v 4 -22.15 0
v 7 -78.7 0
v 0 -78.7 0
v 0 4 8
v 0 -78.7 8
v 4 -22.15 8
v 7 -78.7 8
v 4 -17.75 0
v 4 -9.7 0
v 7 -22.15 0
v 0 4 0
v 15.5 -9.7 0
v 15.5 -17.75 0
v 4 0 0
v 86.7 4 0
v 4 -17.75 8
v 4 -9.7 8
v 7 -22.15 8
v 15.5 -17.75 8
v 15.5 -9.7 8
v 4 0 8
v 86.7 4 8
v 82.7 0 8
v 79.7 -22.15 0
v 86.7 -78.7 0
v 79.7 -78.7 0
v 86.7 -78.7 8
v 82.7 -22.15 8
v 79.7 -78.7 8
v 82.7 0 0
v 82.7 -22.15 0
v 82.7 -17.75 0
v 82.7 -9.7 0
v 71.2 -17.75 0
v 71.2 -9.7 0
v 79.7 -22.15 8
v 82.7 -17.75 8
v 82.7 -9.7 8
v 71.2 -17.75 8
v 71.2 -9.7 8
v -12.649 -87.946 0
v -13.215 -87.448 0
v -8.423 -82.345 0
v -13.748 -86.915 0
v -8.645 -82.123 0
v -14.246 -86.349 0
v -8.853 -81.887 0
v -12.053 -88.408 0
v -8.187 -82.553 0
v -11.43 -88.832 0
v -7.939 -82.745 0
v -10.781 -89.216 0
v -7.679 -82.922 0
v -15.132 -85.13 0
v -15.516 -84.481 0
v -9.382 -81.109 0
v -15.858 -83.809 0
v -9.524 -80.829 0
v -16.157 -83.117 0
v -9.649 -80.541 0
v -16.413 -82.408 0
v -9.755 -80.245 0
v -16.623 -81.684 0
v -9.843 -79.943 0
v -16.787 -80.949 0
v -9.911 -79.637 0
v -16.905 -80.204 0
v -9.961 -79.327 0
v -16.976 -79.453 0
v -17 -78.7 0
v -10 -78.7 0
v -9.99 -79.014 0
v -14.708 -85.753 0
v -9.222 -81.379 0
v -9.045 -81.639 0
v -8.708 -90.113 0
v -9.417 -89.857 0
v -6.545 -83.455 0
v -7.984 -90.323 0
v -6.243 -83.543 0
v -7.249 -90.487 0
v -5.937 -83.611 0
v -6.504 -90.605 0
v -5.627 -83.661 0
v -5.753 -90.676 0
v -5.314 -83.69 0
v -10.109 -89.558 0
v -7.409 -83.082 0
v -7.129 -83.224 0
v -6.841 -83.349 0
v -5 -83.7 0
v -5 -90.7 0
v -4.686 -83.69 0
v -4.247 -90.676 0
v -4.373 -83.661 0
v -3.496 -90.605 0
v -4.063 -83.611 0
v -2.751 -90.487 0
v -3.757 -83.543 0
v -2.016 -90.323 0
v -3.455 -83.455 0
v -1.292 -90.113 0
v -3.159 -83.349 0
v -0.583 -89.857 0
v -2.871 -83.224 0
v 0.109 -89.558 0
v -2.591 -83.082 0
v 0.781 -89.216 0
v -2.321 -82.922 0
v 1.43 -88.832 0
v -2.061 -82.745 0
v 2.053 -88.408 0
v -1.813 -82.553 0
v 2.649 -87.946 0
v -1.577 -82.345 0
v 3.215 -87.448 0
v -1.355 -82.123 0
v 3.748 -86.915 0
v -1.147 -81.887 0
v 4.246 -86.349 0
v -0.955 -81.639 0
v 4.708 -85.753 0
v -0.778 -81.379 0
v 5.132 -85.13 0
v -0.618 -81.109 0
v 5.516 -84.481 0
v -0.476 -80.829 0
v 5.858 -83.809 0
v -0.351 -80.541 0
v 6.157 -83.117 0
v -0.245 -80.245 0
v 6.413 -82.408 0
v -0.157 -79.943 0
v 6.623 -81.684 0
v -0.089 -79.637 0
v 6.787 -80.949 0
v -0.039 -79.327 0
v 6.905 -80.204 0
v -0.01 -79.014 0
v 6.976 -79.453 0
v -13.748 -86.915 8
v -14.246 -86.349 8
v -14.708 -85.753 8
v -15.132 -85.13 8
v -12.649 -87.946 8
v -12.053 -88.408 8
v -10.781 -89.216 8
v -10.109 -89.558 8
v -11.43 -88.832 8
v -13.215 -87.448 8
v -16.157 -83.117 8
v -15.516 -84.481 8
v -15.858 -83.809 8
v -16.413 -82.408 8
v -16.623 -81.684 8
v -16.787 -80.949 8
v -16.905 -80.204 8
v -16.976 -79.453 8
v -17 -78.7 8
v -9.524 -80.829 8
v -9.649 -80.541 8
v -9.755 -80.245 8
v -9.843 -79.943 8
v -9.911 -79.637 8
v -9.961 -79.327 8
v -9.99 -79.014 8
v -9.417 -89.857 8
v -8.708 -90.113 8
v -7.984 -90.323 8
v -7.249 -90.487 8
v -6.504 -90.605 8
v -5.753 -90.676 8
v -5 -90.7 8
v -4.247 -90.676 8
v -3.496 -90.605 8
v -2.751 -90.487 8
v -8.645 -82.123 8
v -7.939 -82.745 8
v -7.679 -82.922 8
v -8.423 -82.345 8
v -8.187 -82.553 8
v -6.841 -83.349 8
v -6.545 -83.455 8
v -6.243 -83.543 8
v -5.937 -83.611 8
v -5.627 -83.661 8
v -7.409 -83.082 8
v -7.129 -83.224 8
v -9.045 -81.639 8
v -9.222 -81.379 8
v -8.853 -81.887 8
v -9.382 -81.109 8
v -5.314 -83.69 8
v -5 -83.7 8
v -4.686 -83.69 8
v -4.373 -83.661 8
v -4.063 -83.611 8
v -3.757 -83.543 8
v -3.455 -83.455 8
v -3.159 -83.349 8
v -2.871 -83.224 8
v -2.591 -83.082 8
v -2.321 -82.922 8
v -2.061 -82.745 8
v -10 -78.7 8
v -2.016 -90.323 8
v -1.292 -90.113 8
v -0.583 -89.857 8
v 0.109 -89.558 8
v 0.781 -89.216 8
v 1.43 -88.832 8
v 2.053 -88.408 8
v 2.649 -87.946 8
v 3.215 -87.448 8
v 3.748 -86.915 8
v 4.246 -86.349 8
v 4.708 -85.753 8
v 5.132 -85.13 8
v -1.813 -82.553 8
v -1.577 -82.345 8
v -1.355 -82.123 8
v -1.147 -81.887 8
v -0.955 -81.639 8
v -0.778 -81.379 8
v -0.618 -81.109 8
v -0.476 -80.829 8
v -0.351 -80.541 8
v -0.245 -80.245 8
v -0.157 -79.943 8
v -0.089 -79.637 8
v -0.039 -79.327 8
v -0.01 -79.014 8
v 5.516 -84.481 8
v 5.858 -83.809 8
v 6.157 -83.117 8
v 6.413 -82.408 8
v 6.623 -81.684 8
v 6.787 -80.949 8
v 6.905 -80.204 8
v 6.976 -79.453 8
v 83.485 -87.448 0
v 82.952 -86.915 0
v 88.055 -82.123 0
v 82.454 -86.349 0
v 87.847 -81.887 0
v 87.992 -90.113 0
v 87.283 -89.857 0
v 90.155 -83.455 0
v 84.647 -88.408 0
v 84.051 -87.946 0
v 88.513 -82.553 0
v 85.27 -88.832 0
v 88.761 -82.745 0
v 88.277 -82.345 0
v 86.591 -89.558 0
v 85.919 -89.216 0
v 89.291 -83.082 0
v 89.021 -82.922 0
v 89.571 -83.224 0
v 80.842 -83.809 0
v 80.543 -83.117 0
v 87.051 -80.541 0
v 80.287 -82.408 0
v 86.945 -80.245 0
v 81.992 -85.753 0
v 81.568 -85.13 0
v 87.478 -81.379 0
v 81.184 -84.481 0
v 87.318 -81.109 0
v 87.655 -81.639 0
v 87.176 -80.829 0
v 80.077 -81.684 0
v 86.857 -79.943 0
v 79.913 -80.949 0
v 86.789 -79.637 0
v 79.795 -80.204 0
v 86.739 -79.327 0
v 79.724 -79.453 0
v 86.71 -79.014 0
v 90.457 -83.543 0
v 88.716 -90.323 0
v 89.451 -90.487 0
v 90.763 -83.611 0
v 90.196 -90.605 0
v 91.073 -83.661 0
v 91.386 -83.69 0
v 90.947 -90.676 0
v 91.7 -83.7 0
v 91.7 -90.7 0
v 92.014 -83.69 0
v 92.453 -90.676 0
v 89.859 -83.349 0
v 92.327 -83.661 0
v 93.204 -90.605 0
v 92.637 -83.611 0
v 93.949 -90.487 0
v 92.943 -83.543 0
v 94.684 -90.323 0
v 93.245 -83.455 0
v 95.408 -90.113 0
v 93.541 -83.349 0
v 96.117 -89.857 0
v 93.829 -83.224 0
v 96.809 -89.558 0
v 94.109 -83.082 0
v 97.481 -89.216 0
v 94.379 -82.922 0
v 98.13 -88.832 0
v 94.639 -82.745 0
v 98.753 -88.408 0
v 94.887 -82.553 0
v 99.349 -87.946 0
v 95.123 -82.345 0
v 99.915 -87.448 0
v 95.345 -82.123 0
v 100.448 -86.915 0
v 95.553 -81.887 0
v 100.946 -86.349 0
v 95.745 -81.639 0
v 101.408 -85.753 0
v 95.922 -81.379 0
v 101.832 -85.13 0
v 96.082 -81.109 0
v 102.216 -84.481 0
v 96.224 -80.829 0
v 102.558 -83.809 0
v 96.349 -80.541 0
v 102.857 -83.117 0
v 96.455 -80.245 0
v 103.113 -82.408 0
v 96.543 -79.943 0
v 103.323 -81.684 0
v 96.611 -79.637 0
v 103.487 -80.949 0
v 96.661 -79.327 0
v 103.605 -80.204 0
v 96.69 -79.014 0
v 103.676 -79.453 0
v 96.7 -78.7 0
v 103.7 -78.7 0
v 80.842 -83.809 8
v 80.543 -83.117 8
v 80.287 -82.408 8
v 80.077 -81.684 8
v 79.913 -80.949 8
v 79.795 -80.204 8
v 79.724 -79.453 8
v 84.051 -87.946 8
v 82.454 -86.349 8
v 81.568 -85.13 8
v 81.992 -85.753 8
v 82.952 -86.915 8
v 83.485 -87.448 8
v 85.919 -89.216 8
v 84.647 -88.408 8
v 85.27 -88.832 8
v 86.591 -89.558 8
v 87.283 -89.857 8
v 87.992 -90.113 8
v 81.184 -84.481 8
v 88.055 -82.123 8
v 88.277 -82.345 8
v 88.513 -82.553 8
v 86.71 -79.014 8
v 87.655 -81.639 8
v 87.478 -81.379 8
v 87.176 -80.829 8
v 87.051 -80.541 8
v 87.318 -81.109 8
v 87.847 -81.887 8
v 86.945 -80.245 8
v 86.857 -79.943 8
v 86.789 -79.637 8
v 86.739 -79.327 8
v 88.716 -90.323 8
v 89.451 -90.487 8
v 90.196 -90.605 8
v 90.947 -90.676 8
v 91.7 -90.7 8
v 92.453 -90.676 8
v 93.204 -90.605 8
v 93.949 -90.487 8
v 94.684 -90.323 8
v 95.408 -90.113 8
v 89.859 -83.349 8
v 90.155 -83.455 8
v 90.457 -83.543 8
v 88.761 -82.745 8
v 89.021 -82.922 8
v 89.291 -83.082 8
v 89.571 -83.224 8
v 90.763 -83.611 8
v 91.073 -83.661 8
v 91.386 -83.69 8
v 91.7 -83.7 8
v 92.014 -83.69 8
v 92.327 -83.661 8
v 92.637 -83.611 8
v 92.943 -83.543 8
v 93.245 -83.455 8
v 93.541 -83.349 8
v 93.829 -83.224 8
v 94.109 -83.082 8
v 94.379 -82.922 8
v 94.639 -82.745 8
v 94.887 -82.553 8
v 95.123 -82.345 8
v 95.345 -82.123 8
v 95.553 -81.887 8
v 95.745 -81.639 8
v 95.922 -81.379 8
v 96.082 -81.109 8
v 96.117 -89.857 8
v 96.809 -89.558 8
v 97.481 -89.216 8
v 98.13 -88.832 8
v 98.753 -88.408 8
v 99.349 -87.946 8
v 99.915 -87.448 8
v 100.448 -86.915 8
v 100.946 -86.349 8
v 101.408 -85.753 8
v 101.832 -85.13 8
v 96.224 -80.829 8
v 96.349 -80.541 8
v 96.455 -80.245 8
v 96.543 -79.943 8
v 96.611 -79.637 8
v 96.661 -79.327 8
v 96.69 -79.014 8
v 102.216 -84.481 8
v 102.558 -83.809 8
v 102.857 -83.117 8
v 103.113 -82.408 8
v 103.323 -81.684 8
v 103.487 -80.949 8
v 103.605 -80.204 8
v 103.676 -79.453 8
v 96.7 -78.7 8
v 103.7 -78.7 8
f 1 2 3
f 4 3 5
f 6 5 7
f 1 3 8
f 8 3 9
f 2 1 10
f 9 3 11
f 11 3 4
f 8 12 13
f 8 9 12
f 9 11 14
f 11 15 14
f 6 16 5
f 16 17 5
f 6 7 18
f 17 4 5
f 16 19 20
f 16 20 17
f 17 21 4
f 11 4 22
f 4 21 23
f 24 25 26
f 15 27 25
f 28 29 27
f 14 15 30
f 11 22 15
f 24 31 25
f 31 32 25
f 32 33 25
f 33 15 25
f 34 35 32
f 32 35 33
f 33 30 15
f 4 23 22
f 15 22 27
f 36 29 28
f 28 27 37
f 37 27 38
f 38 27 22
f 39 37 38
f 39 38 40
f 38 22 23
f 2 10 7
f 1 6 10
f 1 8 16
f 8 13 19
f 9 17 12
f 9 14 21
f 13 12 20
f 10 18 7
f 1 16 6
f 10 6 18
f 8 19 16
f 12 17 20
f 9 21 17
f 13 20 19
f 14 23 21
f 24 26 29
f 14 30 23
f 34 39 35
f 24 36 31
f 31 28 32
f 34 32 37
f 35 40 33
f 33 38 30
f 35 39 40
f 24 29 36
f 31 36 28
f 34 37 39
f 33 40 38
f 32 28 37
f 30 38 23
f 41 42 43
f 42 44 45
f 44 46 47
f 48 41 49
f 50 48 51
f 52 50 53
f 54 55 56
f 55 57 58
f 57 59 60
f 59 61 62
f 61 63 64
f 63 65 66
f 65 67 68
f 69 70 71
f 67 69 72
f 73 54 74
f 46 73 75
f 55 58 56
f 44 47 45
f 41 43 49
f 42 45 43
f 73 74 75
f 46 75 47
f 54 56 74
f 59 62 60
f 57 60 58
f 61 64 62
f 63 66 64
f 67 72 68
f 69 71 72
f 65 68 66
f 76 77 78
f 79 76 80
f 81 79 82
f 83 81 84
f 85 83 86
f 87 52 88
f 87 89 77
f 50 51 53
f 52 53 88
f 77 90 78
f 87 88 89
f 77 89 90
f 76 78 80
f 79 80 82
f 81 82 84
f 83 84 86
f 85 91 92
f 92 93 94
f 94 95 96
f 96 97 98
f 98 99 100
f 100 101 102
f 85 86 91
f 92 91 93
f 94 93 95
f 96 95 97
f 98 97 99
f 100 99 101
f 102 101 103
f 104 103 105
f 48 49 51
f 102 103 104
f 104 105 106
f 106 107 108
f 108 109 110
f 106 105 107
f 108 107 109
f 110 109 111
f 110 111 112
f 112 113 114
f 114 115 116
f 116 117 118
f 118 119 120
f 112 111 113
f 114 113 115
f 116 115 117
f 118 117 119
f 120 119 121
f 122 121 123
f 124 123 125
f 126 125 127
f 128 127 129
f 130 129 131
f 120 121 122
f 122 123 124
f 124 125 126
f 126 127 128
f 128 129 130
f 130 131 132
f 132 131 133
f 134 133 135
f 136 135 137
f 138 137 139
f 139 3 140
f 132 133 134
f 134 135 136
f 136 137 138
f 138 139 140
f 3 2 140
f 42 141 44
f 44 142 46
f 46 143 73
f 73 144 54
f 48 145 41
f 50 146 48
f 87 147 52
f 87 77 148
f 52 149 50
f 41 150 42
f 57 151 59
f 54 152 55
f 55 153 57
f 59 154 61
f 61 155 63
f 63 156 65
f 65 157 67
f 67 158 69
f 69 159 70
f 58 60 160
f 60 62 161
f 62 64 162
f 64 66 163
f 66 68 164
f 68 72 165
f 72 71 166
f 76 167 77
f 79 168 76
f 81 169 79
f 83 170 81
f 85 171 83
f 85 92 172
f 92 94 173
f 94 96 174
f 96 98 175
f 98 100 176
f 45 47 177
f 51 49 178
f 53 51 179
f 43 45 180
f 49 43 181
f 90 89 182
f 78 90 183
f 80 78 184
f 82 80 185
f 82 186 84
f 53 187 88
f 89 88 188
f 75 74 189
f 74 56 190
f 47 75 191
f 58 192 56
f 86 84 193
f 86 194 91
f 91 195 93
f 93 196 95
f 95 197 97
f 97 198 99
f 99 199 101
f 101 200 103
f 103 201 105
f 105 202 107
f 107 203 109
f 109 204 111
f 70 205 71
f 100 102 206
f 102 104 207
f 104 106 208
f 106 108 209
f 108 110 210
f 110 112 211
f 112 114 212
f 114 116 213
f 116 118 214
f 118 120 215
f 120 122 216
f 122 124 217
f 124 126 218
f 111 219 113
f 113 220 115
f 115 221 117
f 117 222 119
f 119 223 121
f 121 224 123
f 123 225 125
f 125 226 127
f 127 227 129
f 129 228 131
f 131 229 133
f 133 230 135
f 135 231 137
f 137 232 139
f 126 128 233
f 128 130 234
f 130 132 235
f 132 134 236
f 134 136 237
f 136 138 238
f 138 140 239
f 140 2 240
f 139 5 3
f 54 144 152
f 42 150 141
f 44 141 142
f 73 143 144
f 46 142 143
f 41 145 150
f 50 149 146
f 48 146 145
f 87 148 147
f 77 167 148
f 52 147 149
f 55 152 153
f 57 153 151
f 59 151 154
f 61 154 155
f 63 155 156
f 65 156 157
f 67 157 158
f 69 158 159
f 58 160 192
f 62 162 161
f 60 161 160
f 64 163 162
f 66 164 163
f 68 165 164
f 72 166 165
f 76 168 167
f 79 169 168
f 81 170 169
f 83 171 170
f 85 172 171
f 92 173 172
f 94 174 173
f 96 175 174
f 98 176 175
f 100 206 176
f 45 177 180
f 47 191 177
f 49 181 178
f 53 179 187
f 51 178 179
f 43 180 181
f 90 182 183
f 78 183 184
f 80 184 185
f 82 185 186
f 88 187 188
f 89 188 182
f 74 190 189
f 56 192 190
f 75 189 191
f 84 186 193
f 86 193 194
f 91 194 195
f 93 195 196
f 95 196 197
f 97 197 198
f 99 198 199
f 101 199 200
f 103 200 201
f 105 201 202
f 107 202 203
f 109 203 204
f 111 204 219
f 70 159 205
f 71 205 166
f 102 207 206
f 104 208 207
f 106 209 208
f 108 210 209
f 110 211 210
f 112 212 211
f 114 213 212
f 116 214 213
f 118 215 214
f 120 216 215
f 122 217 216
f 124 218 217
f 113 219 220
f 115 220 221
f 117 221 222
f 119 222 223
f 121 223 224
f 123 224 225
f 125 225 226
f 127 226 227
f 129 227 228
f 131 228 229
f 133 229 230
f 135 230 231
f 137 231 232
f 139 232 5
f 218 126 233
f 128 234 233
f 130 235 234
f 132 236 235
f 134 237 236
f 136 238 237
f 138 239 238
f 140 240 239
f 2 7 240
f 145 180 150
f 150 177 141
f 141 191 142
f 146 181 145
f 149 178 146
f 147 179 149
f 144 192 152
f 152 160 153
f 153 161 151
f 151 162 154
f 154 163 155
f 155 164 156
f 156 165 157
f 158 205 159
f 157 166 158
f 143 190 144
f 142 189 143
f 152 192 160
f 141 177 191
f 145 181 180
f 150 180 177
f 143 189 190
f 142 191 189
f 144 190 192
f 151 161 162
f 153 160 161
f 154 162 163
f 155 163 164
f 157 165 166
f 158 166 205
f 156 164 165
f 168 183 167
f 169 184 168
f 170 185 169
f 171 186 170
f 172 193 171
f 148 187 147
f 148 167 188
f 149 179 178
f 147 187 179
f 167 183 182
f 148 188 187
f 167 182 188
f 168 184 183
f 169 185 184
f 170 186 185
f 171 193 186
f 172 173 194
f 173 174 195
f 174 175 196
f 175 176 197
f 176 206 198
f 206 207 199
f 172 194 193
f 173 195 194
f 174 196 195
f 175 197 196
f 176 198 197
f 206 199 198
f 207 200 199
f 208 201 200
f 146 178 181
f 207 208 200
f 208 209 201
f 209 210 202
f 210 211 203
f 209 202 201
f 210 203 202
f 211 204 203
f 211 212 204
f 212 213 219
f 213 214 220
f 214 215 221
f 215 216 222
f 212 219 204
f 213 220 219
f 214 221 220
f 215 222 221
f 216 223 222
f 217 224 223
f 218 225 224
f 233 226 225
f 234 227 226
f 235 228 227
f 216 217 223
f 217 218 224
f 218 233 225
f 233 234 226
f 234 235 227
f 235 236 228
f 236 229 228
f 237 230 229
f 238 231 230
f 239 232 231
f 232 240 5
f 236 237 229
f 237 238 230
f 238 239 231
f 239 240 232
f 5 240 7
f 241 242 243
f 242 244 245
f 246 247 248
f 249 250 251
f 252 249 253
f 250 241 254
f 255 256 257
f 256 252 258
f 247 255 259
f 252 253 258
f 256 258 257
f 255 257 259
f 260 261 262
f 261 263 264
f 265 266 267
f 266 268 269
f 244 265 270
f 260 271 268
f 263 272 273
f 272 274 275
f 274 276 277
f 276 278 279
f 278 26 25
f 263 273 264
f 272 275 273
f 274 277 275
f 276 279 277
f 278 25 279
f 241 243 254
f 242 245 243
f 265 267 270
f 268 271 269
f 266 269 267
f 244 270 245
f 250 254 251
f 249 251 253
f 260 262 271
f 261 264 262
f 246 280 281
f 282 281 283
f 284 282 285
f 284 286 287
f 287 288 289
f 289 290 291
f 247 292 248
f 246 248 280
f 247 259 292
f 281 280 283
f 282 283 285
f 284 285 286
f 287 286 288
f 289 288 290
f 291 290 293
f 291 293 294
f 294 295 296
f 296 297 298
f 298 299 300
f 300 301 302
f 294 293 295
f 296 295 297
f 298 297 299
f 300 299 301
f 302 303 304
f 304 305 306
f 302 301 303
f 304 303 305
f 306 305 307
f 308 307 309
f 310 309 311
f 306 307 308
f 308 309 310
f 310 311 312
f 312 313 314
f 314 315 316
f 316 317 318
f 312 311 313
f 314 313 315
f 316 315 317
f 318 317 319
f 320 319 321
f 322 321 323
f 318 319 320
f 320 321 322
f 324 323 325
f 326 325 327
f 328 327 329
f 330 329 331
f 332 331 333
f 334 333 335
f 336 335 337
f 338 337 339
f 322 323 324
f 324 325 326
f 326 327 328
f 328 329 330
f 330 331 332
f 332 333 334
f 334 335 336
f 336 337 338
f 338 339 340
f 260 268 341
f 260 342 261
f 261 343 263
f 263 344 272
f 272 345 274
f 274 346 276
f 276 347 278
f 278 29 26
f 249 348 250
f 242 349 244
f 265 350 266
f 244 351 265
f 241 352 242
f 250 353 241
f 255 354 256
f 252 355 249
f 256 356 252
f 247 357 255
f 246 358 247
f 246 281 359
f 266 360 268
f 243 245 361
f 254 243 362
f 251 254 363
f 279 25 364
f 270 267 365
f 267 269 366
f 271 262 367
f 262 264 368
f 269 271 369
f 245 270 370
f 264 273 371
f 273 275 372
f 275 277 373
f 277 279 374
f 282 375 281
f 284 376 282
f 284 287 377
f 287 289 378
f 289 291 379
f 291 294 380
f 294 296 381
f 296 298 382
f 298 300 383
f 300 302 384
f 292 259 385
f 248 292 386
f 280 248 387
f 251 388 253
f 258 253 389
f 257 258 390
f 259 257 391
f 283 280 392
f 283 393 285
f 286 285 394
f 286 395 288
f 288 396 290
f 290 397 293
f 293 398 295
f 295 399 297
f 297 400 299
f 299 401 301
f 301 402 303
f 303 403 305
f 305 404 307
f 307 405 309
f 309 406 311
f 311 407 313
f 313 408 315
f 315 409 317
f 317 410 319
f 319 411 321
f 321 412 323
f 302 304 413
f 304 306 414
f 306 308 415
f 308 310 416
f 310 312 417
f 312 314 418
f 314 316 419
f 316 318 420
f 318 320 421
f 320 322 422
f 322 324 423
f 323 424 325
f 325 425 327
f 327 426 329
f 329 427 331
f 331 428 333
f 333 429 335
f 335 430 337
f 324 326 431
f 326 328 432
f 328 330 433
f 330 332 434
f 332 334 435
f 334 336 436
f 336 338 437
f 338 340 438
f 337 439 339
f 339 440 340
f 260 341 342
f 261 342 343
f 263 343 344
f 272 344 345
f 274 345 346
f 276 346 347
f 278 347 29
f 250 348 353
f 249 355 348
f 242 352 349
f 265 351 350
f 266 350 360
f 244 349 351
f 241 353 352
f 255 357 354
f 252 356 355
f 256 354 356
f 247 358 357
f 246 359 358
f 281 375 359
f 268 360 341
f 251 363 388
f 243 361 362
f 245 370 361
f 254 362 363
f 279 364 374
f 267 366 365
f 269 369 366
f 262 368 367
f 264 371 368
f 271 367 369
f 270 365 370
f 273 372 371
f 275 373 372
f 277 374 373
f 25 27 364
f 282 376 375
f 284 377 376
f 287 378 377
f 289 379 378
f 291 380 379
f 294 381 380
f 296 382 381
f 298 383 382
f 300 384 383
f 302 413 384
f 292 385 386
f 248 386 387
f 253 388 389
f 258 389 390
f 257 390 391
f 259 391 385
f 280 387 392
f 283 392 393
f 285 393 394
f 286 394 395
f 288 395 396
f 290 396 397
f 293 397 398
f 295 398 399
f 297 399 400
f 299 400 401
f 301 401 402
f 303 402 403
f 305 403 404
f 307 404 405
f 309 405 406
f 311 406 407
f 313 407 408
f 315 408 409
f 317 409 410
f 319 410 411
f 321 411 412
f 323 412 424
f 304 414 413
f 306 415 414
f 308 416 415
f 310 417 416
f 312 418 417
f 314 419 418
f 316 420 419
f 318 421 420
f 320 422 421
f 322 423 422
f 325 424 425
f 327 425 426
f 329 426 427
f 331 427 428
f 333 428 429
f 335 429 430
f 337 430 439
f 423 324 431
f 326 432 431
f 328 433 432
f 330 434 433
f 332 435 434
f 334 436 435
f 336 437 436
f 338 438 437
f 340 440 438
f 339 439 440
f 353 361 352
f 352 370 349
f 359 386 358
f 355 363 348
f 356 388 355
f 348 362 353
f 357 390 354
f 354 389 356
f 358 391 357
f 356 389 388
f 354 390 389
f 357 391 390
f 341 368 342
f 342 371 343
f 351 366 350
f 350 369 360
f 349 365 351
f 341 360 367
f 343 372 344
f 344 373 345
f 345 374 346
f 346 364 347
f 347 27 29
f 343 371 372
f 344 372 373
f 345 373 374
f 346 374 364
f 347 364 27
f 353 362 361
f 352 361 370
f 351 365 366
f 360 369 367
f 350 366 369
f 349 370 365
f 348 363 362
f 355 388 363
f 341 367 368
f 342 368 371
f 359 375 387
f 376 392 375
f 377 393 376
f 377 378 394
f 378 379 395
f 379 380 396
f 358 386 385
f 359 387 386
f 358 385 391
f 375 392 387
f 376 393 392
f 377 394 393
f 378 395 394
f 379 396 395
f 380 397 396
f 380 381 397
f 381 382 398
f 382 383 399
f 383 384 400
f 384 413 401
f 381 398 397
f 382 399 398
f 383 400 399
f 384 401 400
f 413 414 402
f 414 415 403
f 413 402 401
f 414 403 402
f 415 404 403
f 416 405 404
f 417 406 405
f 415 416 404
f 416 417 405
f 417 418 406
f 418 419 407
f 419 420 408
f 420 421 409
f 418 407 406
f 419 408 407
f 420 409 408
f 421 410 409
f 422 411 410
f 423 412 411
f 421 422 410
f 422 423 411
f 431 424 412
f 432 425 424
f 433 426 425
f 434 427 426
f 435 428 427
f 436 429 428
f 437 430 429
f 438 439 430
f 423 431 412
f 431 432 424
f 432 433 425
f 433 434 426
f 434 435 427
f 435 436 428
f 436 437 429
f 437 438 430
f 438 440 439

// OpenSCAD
// Like wall-cap.scad, but for my new cubicle wall.
//
// Shape:
//   ----------
//   |        |  topper_width
//   ---    ---
//      |  |     indent_width
//   ---    ---
//   |        |  overhang_width
//   --      --
//    |      |   wall_width
//    |      |

// Measured:
topper_width    = 78.70; // mm
topper_height   =  9.70;
indent_width    = 11.50;
indent_height   =  8.05;
overhang_width  =  3.00;
overhang_height =  4.40;

// tolerance = 0.05;
$fn = 100;

// Desired:
thickness = 4.0;
drop = topper_width;
hook_radius = 12.0;
length = 8.0;

module wall(drop=drop) {
  linear_extrude(length) {
    w1 = topper_width;
    w2 = topper_width - 2 * indent_width;
    w3 = topper_width;
    w4 = topper_width - 2 * overhang_width;
    y1 = 0 - topper_height;
    y2 = y1 - indent_height;
    y3 = y2 - overhang_height;
    y4 = y3 - drop;
    translate([             0, y1, 0]) square([w1, topper_height]);
    translate([  indent_width, y2, 0]) square([w2, indent_height]);
    translate([             0, y3, 0]) square([w3, overhang_height]);
    translate([overhang_width, y4, 0]) square([w4, drop]);
  }
}

module cap(length, drop = drop, t = thickness) {
    w = topper_width + 2*t;
    difference() {
      linear_extrude(length) {
        translate([-t, -drop, 0]) square([w, drop+t]);
      }
      wall();
    }
}

module hook(length, radius) {
    t = thickness + overhang_width;
    linear_extrude(length) {
        difference() {
            circle(radius);
            circle(radius-t);
            translate([-radius, 0]) square(2*radius);
        }
    }
}

translate([thickness, 0, 0]) cap(length=length);
translate([-hook_radius + thickness + overhang_width, -drop, 0]) color("green")
  hook(length=length, radius=hook_radius);
translate([topper_width + hook_radius + thickness - overhang_width, -drop, 0]) color("green")
  hook(length=length, radius=hook_radius);
